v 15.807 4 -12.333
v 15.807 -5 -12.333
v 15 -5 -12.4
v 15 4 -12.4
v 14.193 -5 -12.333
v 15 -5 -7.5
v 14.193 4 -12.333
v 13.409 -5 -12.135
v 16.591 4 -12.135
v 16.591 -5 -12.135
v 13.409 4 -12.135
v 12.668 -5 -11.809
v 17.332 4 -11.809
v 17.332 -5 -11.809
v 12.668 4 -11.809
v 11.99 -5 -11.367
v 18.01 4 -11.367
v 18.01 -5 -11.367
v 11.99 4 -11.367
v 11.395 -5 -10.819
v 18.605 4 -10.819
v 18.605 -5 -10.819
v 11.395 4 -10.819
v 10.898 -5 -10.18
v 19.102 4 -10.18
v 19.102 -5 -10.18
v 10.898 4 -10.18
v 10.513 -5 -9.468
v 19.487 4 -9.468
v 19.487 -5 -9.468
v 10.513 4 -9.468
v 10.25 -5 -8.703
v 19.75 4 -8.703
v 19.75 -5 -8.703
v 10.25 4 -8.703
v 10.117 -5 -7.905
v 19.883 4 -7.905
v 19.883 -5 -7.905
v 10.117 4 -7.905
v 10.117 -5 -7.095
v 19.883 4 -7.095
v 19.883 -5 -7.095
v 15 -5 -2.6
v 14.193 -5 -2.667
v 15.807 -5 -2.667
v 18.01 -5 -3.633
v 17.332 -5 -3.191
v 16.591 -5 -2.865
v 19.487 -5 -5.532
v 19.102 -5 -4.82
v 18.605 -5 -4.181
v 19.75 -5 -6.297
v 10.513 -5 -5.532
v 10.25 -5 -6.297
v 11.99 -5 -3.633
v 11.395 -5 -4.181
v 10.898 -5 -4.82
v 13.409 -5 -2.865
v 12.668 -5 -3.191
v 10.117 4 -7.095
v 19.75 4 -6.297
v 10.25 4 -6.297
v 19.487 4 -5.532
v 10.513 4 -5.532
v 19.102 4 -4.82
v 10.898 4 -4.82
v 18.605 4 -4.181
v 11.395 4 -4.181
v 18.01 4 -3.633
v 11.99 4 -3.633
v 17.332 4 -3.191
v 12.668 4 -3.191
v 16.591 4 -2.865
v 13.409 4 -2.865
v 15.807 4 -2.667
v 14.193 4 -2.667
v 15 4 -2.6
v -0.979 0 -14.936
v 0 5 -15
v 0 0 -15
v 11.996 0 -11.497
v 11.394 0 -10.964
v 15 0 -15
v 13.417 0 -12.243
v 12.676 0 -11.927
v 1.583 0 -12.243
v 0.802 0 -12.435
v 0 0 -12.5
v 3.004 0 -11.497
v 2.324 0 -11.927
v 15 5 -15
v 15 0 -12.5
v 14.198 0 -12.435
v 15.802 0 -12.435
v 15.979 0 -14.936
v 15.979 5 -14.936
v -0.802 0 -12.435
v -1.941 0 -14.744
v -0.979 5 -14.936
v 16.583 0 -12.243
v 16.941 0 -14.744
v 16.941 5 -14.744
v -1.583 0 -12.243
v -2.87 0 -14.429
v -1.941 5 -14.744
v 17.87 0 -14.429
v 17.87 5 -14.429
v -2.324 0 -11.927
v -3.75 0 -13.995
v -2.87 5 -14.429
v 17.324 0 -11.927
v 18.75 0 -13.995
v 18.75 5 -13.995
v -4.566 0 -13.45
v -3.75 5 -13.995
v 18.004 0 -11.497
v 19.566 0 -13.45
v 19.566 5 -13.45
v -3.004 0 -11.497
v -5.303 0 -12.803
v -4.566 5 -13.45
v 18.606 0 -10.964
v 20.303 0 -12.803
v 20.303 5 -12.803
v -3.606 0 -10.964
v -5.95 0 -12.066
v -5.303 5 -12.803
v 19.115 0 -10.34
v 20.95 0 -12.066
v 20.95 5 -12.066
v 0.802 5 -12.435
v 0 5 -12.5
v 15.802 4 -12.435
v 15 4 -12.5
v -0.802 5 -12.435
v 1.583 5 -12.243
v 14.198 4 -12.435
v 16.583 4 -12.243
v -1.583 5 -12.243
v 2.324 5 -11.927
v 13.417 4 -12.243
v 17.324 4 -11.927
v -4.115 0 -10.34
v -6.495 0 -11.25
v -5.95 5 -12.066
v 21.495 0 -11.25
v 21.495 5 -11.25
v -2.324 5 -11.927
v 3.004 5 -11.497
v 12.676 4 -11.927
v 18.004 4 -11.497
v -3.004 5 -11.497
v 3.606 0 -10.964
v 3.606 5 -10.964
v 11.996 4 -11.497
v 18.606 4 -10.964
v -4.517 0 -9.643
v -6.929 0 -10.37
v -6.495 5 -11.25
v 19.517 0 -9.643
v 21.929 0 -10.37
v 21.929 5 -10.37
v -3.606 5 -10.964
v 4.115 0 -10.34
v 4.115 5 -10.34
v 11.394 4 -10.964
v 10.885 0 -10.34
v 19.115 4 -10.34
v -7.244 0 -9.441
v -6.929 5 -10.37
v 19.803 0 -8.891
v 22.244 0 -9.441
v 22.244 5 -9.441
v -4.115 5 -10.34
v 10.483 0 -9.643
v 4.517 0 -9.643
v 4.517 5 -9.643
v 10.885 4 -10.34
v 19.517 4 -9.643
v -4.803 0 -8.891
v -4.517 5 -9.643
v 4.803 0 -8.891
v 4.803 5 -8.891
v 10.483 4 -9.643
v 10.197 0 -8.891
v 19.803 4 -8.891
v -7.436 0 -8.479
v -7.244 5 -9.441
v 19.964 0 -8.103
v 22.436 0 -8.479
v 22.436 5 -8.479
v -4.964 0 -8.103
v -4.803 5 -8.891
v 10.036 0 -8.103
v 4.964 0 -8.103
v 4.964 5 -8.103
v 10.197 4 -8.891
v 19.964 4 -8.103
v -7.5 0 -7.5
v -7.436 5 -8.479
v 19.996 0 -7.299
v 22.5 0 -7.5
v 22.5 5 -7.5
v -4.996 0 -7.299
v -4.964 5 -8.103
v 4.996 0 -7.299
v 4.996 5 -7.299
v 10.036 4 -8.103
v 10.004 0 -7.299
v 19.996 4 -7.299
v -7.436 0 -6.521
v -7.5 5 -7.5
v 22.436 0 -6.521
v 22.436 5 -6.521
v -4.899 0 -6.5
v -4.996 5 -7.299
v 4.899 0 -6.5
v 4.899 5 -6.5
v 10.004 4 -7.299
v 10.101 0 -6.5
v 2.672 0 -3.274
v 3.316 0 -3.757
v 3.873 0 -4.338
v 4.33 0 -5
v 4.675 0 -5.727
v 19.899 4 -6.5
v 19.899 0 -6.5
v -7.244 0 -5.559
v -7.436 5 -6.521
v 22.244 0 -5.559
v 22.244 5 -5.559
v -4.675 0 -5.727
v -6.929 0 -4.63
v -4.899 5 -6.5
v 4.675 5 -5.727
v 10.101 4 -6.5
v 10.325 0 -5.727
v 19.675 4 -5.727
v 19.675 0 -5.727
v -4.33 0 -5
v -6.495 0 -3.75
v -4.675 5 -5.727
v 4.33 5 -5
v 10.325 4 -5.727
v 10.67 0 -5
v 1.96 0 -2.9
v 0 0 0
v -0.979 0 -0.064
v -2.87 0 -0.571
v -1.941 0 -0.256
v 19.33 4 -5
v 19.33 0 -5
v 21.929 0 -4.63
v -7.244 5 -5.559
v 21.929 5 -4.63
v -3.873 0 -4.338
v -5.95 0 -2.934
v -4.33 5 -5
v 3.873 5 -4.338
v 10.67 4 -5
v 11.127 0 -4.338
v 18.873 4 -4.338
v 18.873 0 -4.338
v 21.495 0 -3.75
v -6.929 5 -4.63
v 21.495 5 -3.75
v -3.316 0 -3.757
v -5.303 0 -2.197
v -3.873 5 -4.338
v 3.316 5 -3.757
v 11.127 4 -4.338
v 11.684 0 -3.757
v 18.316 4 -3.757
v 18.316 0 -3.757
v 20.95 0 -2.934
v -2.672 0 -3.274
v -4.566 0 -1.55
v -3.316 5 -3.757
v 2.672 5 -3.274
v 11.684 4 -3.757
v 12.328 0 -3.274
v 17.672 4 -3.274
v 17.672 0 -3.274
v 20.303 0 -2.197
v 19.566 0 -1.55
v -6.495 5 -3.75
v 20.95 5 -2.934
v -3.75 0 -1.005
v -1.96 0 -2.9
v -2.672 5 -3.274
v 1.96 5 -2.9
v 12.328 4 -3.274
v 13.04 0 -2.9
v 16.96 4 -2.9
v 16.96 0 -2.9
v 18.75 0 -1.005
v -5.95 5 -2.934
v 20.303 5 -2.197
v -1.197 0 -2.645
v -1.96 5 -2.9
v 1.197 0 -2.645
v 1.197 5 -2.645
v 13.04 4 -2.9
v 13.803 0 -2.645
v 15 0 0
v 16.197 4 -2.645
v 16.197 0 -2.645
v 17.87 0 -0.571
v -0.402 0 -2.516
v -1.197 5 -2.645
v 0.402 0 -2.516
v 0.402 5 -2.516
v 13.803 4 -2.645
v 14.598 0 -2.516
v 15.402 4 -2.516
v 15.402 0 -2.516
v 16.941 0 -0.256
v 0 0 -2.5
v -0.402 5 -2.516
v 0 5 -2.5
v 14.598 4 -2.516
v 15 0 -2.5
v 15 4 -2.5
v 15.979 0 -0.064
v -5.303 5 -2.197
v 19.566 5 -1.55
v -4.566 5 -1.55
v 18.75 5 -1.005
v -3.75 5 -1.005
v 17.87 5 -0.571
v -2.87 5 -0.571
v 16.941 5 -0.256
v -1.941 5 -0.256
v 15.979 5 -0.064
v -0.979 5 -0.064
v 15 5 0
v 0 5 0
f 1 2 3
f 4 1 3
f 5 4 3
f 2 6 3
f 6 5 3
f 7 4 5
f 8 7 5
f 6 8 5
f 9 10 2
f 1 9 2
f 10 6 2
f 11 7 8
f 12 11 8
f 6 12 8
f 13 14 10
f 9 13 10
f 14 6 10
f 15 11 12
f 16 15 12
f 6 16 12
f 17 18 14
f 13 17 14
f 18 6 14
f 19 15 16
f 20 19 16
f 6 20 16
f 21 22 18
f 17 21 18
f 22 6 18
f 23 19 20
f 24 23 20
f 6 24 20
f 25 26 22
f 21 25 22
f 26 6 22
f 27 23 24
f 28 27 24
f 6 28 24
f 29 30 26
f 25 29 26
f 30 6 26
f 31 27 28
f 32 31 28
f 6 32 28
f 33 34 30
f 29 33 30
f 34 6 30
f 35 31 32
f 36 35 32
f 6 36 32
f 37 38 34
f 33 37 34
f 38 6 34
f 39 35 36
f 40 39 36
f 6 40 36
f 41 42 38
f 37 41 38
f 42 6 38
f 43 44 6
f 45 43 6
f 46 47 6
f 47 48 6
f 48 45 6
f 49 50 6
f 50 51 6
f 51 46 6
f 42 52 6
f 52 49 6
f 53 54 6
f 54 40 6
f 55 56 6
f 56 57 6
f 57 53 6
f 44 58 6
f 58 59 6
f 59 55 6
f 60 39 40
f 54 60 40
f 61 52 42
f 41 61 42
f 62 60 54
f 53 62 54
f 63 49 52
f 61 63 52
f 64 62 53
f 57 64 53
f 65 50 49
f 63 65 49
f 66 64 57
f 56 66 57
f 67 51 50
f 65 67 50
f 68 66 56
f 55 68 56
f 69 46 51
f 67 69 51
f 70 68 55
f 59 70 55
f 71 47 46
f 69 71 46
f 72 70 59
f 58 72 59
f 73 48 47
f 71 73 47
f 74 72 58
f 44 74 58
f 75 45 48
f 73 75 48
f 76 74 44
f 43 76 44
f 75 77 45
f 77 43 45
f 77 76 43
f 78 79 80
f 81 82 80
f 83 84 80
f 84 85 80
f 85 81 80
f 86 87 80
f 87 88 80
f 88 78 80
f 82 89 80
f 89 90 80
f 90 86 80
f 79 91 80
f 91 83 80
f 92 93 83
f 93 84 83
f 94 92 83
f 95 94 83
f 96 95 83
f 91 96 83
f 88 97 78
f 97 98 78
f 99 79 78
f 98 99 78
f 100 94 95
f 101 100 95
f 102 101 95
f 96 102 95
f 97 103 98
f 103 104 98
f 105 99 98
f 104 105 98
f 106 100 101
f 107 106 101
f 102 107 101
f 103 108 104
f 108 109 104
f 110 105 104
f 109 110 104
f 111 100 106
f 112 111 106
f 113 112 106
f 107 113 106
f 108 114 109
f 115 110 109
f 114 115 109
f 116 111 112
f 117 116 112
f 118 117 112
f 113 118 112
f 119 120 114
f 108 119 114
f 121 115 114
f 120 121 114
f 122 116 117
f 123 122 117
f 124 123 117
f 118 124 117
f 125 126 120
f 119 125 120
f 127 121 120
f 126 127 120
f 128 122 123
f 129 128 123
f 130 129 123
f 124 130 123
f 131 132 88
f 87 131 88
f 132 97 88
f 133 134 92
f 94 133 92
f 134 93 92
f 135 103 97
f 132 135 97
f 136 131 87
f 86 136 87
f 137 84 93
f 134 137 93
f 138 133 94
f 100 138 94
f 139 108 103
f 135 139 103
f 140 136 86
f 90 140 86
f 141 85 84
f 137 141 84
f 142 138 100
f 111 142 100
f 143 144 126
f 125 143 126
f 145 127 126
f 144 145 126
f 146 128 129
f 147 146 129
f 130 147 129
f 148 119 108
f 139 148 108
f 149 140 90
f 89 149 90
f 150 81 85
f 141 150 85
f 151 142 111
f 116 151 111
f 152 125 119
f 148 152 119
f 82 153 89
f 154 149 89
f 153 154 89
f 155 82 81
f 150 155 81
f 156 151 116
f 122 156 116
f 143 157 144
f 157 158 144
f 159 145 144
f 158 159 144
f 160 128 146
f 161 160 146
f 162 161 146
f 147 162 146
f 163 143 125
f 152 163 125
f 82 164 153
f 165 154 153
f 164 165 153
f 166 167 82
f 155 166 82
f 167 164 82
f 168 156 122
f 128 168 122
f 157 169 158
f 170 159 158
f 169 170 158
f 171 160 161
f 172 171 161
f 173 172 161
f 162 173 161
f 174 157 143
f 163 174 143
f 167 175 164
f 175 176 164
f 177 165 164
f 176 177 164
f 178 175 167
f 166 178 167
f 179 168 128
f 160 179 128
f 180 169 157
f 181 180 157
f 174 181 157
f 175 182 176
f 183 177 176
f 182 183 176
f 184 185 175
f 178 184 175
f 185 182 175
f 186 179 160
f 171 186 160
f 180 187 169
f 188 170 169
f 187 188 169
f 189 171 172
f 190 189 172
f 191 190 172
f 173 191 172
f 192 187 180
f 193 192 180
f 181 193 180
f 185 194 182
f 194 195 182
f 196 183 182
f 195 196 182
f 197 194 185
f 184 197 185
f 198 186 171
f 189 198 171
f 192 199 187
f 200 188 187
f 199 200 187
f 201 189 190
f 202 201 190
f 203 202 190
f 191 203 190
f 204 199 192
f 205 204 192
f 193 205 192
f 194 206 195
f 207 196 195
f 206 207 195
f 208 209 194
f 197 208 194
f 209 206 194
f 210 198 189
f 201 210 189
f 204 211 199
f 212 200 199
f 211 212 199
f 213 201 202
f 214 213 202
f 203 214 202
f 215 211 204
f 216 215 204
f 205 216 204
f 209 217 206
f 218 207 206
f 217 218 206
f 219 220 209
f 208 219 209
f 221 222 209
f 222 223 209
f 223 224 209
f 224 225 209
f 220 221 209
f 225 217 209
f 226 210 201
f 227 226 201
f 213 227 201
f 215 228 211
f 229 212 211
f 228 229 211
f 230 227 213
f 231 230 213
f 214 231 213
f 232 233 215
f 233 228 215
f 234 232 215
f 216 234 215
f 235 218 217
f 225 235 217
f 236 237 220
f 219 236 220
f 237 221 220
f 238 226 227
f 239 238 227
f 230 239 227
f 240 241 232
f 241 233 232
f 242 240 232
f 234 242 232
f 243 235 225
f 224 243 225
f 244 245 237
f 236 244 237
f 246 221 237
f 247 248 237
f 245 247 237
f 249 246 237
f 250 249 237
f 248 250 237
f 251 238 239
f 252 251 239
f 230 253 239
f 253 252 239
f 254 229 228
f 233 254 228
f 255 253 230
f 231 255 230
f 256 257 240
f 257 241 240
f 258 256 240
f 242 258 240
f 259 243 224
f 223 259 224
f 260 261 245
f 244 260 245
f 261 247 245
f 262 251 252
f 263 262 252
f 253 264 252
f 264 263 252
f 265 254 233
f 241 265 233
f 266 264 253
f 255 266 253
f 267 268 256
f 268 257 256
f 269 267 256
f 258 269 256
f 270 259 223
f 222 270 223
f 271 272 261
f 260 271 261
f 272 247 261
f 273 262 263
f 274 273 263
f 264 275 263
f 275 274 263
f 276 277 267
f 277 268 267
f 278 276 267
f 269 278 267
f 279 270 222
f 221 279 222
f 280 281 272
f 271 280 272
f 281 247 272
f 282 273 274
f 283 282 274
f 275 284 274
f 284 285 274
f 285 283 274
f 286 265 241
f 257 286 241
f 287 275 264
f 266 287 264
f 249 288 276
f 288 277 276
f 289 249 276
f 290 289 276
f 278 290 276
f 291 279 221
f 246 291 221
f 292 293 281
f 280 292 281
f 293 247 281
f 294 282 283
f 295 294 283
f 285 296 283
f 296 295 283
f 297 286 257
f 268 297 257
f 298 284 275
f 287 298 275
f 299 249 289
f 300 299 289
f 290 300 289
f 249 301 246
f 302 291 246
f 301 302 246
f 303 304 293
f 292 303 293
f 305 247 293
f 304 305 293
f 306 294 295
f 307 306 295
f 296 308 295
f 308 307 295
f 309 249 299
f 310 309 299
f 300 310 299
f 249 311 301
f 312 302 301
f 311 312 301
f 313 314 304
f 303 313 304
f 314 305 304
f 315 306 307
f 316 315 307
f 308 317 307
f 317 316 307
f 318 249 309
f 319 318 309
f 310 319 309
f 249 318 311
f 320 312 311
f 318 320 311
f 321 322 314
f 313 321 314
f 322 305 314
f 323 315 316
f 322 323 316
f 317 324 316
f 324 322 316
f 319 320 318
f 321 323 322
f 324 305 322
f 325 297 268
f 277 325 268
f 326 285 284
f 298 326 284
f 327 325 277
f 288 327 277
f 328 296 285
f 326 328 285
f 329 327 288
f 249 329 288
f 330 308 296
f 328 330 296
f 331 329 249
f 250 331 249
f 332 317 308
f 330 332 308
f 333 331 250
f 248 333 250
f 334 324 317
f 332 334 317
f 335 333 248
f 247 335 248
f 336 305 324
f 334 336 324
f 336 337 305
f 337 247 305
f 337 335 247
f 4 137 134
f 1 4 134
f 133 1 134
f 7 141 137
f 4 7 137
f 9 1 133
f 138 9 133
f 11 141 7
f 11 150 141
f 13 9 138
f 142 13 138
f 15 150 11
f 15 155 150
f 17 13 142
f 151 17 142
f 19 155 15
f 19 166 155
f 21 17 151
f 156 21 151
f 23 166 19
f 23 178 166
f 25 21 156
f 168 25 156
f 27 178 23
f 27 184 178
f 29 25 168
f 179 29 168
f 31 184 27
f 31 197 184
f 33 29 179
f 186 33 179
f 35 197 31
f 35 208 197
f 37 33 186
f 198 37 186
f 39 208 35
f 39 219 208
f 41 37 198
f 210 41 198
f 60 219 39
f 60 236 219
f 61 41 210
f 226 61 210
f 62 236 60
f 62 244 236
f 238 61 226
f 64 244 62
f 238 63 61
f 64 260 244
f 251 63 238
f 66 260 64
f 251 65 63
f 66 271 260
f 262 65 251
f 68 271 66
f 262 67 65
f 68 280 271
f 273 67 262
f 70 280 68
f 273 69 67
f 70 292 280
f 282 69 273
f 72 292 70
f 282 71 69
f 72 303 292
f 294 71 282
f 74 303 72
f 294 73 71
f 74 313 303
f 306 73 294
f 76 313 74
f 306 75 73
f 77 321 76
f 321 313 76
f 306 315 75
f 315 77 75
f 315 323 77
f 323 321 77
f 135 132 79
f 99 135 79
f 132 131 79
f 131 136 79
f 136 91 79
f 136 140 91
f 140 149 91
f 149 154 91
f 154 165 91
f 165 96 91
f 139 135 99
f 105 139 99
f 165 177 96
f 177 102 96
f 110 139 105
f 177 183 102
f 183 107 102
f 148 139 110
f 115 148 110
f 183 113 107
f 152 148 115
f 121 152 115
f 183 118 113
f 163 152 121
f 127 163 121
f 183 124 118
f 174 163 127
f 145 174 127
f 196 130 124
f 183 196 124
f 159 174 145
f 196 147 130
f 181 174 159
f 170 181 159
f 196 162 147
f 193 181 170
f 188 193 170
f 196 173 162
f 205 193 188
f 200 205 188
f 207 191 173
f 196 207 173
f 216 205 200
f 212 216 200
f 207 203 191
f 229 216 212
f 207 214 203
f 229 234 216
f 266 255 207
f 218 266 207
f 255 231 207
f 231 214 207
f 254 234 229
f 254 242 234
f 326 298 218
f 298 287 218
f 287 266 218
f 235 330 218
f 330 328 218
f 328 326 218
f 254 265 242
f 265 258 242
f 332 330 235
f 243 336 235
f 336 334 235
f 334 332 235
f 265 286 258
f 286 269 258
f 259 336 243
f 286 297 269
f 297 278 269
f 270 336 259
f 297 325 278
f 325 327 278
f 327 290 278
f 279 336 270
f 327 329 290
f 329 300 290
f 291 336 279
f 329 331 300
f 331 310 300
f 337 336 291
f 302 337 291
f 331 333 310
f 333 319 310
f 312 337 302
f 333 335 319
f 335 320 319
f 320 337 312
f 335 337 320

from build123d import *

# Parameters (mm, degrees)
SKETCH1_R           = 5
BOSS_EXTRUDE1_DEPTH = 5
SKETCH2_R           = 4.9
BOSS_EXTRUDE2_DEPTH = 10
BOSS_EXTRUDE3_START = -1
SKETCH4_R           = 5
BOSS_EXTRUDE3_DEPTH = 1


with BuildPart() as part:
    # Sketch1 → Boss-Extrude1 (new body)
    with BuildSketch(Plane(origin=(0, 0, 0), x_dir=(1, 0, 0), z_dir=(0, 1, 0))):
        with BuildLine():
            Line((0, 0), (15, 0))
            ThreePointArc((15, 0), (22.5, 7.5), (15, 15))
            Line((15, 15), (0, 15))
            ThreePointArc((0, 15), (-7.5, 7.5), (0, 0))
        make_face()
        with Locations(Location((0, 7.5, 0), (0, 0, 270))):
            Circle(SKETCH1_R, mode=Mode.SUBTRACT)
        with Locations(Location((15, 7.5, 0), (0, 0, 270))):
            Circle(SKETCH1_R, mode=Mode.SUBTRACT)
    extrude(amount=BOSS_EXTRUDE1_DEPTH)



with BuildPart() as body_2:
    # Sketch2 → Boss-Extrude2 (new body)
    with BuildSketch(Plane(origin=(0, 5, 0), x_dir=(1, 0, 0), z_dir=(0, 1, 0))):
        with Locations(Location((15, 7.5, 0), (0, 0, 270))):
            Circle(SKETCH2_R)
    extrude(amount=-BOSS_EXTRUDE2_DEPTH)


with BuildPart() as part_1:
    add(part.part)

    add(body_2.part)  # Boss-Extrude3 merges body 2
    # Sketch4 → Boss-Extrude3 (add)
    with BuildSketch(Plane(origin=(0, 5, 0), x_dir=(-1, 0, 0), z_dir=(0, 1, 0)).offset(BOSS_EXTRUDE3_START)):
        with Locations(Location((-15, -7.5, 0), (0, 0, 90))):
            Circle(SKETCH4_R)
    extrude(amount=BOSS_EXTRUDE3_DEPTH)


solid = part_1.part
